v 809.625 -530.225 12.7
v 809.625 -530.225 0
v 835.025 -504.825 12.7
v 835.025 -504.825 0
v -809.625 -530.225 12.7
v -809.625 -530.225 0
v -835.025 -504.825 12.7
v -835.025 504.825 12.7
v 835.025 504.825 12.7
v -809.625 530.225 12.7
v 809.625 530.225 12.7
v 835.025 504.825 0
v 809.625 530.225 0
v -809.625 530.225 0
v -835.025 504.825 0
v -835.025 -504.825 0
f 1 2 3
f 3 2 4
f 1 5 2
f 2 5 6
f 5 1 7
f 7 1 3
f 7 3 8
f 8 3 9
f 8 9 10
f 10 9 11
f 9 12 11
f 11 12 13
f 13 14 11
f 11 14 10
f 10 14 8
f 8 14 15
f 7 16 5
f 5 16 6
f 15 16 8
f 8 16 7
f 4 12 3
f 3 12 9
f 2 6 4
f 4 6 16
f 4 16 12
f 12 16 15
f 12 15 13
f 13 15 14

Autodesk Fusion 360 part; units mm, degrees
sketch "Sketch1" plane through (0, 0, 0) normal (0, 0, 1) x (1, 0, 0)
  line L0 (-835.025, 530.225) -> (835.025, 530.225)
  line L1 (835.025, 530.225) -> (835.025, -530.225)
  line L2 (835.025, -530.225) -> (-835.025, -530.225)
  line L3 (-835.025, -530.225) -> (-835.025, 530.225)
  line L4 (-835.025, 530.225) -> (835.025, -530.225) construction
  line L5 (835.025, 530.225) -> (-835.025, -530.225) construction
  dimension "d1" = 1670.05
  dimension "d2" = 1060.45
extrude "Extrude1" add sketch "Sketch1" along normal blind 12.7
chamfer "Chamfer1" distance 25.4 angle 45 4 edges at (-835.025, -530.225, 6.35) (-835.025, 530.225, 6.35) (835.025, 530.225, 6.35) (835.025, -530.225, 6.35)
equation "d1 = 66 in - 0.25 in"
equation "d2 = 42 in - 0.25 in"
